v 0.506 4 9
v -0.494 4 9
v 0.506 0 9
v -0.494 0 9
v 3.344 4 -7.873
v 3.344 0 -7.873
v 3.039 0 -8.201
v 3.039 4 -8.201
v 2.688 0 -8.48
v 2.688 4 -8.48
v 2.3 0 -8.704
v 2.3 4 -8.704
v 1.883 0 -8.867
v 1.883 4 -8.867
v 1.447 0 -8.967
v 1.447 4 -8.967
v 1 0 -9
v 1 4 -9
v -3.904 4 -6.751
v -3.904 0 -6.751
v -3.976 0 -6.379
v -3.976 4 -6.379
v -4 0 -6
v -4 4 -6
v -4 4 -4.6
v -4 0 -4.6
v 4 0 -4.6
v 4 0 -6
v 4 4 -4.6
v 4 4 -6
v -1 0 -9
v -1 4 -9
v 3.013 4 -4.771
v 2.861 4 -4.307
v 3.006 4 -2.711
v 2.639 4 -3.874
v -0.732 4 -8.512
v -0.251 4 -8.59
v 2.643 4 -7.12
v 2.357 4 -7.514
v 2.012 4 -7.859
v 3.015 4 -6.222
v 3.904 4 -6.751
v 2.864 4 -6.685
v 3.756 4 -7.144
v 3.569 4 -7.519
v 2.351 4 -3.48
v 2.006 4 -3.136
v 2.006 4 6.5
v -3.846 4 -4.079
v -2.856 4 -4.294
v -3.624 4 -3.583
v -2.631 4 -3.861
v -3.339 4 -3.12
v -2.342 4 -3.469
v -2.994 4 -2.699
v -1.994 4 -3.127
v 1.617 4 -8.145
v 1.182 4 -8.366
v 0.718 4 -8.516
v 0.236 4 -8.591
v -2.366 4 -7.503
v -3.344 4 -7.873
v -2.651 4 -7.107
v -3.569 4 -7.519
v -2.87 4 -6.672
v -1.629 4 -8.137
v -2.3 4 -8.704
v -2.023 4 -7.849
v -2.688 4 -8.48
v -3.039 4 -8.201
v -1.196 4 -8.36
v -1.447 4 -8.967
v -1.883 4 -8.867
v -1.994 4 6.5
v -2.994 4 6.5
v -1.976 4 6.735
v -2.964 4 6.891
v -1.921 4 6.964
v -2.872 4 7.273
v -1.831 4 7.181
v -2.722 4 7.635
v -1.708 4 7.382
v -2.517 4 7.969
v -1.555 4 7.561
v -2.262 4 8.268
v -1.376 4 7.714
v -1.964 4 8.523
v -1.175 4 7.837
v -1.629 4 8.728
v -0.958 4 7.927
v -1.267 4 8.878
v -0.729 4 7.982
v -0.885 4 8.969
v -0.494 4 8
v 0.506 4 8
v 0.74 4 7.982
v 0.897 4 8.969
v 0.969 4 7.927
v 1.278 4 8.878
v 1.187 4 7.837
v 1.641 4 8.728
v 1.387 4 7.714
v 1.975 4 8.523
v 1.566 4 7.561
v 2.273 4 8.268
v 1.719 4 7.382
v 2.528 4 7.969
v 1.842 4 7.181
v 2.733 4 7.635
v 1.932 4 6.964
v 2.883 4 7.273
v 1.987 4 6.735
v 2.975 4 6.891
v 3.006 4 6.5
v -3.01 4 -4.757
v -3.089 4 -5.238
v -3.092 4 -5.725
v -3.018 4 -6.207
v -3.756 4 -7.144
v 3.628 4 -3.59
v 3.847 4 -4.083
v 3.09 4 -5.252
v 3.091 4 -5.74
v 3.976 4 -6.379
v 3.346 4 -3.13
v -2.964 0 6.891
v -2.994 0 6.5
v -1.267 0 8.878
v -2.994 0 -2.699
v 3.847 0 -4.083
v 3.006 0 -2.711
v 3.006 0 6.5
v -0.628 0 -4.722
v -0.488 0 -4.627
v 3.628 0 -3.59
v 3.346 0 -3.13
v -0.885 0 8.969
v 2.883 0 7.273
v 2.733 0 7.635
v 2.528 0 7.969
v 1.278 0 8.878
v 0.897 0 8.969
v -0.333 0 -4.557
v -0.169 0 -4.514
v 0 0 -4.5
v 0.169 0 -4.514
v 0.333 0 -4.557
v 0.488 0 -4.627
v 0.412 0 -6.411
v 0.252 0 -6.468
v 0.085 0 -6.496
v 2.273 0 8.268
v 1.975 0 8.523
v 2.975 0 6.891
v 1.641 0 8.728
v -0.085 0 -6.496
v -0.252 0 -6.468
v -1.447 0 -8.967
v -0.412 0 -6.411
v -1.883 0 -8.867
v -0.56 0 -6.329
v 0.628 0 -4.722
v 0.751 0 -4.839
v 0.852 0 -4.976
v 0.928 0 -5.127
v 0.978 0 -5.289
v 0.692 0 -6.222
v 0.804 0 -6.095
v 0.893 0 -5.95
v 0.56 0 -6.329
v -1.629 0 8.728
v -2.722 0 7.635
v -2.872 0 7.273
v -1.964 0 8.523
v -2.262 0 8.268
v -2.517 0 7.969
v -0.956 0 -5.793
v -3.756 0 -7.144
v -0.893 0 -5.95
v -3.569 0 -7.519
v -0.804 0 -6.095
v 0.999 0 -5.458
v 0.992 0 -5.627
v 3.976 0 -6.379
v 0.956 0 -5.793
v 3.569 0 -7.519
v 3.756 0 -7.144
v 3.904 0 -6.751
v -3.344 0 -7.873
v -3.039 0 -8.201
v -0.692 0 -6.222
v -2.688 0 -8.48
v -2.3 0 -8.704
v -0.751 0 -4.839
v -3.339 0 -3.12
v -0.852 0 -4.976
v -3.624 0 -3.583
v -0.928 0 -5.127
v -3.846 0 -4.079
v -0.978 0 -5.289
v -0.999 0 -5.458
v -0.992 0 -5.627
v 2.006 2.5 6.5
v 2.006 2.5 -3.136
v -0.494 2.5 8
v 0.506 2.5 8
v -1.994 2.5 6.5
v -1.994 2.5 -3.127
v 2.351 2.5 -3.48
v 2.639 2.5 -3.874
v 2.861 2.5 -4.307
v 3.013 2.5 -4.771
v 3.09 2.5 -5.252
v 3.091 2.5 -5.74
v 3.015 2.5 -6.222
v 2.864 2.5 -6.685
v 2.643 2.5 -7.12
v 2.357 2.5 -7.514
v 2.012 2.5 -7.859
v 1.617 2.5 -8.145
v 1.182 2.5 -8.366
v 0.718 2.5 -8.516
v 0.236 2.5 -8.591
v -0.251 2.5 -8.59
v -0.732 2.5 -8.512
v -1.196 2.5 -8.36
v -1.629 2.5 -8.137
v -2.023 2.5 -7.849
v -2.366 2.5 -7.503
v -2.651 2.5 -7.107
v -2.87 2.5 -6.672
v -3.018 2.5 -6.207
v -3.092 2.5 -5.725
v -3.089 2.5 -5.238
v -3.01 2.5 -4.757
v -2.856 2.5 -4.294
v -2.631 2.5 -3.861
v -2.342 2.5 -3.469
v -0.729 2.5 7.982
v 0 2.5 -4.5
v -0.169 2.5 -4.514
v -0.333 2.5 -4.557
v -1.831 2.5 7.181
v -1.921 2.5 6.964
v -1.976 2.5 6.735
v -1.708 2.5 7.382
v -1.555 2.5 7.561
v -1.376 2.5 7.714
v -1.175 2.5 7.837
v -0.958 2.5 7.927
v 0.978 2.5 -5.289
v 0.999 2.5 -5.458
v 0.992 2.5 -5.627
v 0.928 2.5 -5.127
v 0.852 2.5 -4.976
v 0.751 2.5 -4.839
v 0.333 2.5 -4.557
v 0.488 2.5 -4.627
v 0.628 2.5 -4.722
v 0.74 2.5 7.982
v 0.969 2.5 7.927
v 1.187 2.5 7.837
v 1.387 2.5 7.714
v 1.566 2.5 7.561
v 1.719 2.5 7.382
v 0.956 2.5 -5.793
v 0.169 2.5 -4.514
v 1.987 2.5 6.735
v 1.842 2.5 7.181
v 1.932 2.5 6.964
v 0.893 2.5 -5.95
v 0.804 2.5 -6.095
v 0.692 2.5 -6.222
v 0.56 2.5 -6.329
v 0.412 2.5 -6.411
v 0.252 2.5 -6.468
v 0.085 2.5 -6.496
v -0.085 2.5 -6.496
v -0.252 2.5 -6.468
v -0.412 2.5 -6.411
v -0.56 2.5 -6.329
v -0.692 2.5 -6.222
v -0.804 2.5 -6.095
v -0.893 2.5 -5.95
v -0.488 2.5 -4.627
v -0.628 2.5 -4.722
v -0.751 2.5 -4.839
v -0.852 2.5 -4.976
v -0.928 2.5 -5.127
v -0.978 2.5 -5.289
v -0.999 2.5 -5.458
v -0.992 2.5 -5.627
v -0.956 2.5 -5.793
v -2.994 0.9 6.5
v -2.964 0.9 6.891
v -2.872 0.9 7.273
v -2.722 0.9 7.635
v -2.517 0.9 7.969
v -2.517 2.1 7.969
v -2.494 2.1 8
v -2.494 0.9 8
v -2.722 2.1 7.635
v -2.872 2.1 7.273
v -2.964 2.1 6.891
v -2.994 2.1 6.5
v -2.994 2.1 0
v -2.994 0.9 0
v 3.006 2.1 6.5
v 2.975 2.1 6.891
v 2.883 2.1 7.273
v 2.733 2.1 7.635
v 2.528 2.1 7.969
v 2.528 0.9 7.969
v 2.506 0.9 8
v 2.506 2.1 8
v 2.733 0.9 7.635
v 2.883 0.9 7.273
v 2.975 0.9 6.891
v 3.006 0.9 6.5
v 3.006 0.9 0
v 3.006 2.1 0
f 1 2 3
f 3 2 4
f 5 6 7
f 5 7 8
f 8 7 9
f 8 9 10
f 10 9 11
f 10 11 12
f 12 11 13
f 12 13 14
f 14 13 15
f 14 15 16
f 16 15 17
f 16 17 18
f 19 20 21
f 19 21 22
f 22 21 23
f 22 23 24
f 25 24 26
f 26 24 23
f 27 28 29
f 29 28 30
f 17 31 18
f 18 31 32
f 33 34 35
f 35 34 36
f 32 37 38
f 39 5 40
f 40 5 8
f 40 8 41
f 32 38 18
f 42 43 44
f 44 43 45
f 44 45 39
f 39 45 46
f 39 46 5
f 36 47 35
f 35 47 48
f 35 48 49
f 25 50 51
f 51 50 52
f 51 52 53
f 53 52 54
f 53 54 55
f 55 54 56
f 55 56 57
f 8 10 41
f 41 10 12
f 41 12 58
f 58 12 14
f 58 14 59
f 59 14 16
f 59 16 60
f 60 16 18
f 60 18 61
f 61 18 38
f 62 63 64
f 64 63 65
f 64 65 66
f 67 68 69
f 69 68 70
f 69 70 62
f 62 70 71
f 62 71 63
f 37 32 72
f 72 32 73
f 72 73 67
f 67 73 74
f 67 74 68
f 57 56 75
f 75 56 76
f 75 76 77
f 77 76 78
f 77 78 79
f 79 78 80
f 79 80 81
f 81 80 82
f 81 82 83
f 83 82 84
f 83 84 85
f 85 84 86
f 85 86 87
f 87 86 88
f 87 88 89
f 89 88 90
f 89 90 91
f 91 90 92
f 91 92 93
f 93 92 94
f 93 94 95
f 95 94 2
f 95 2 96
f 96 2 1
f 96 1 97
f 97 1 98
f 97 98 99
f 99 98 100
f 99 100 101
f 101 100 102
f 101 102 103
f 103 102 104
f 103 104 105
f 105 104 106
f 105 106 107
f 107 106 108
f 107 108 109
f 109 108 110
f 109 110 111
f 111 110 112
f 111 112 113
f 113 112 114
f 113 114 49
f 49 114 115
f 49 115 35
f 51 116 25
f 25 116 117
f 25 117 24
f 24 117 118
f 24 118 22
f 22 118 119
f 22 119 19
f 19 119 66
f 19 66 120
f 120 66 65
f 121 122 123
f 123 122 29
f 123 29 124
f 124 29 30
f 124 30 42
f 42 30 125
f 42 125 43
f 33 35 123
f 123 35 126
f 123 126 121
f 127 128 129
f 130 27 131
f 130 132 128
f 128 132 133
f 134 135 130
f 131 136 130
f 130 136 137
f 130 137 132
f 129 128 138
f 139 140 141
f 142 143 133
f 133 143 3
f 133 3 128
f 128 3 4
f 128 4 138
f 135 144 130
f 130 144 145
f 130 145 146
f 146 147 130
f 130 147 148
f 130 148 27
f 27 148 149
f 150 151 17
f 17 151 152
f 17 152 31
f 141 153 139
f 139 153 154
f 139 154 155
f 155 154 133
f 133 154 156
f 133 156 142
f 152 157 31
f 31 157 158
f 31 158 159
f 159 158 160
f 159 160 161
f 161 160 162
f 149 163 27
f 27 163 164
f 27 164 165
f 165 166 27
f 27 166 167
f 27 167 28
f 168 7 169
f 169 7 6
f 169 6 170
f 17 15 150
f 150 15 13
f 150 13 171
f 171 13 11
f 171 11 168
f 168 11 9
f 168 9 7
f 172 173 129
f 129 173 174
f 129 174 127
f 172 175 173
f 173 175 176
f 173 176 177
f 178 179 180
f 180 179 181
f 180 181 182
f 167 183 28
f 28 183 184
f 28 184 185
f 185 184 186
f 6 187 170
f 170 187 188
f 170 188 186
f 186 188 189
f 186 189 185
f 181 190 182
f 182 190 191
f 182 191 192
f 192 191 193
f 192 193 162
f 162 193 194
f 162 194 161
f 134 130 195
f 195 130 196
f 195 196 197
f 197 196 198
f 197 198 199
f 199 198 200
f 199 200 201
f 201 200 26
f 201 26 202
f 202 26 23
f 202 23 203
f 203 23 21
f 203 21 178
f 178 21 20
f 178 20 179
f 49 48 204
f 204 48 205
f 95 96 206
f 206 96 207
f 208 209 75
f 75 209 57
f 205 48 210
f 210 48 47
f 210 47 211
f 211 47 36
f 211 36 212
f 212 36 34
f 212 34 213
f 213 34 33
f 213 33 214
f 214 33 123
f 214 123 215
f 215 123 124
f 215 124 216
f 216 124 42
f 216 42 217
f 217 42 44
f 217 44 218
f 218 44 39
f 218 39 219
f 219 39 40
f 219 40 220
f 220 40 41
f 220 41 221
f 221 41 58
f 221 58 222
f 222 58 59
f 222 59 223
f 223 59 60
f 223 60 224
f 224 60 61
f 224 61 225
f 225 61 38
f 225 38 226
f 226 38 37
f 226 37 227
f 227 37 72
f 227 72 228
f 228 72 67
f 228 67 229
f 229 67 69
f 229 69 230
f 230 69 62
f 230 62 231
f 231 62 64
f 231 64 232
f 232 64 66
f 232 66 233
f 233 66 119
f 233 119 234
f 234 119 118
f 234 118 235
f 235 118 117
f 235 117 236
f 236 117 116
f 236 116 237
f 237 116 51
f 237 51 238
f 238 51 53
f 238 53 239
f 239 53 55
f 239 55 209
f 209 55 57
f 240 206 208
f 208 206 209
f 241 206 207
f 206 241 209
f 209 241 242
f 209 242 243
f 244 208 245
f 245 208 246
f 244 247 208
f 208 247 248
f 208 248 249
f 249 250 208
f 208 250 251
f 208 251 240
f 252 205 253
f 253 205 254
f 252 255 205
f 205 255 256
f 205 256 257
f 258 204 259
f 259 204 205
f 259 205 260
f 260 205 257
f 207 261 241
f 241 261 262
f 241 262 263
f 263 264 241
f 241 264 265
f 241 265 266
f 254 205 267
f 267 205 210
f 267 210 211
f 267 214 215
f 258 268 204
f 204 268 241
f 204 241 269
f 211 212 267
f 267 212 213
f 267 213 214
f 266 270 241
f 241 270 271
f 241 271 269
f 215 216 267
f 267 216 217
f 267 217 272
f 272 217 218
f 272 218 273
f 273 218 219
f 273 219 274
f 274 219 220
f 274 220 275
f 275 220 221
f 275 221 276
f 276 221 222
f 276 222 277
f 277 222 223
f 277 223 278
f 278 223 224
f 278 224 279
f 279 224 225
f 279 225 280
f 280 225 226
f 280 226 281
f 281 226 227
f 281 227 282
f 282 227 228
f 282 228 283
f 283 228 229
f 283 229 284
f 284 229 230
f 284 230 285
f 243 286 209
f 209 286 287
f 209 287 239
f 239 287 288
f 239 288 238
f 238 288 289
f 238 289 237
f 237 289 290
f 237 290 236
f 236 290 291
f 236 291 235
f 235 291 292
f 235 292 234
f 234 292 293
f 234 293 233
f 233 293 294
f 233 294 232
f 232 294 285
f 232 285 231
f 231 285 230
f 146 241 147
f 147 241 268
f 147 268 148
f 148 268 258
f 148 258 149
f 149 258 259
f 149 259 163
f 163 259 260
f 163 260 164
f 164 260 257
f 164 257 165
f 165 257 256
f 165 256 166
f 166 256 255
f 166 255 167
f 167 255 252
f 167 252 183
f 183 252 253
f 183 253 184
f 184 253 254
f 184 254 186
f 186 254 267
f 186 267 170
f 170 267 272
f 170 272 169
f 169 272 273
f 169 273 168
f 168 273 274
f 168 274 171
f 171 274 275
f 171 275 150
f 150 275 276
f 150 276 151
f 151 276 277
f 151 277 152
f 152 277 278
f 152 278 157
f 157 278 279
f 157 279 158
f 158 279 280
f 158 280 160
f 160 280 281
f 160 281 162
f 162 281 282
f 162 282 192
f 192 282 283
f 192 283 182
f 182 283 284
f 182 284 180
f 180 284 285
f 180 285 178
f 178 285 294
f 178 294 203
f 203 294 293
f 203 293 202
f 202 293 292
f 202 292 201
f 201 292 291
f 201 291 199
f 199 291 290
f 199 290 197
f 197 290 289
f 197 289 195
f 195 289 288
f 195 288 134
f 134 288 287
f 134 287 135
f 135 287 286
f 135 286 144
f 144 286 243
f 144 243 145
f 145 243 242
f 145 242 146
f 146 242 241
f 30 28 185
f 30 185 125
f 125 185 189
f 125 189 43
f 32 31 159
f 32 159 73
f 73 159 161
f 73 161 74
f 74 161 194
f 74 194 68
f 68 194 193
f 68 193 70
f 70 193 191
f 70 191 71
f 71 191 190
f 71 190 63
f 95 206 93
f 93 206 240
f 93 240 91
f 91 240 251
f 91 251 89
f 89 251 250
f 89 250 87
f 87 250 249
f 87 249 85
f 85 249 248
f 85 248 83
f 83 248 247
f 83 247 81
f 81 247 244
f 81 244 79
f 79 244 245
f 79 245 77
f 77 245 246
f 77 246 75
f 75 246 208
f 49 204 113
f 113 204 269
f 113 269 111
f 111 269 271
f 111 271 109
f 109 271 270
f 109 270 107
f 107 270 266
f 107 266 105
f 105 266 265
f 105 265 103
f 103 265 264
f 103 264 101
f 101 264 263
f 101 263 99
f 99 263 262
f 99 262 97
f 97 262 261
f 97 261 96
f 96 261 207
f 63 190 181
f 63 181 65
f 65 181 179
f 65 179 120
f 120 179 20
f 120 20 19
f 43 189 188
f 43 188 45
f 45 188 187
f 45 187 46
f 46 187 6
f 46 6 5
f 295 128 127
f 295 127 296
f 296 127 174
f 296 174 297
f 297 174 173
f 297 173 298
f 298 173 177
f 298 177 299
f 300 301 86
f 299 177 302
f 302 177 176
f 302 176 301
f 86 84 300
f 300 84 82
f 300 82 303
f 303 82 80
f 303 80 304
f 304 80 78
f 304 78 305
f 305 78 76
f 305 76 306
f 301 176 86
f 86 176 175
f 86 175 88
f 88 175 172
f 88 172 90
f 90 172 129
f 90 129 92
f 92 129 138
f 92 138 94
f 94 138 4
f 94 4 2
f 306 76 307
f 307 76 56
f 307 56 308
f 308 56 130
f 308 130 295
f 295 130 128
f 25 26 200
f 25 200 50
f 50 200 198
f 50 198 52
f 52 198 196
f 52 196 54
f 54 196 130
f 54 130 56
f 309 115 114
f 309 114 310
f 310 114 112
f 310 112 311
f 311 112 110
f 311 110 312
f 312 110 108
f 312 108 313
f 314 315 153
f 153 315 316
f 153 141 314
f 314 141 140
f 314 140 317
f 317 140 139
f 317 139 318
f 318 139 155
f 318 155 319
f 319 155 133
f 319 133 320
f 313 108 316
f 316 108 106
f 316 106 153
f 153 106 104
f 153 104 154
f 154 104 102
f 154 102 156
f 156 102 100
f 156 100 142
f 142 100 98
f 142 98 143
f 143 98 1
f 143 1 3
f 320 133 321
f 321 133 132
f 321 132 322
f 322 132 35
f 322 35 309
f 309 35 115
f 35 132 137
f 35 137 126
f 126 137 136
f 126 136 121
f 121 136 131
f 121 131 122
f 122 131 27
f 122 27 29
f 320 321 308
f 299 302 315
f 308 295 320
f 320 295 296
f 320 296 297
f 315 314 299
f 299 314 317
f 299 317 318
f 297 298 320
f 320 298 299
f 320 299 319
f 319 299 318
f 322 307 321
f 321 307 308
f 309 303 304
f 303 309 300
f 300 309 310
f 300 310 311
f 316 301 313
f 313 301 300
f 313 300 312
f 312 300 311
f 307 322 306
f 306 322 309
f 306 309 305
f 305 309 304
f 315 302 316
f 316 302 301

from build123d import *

# Parameters (mm, degrees)
SKETCH_1_W          = 8
SKETCH_1_H          = 18
EXTRUDE_1_DEPTH     = 4
CUT_EXTRUDE_4_DEPTH = 1.5
SKETCH_6_W          = 8
SKETCH_6_H          = 1.2
CUT_EXTRUDE_5_DEPTH = 13.68857754
SKETCH_7_R          = 1
CUT_EXTRUDE_6_DEPTH = 11.161200716
FILLET_1_R          = 3
FILLET_2_R          = 2
FILLET_3_R          = 1.5
CUT_EXTRUDE_START   = -4
CUT_EXTRUDE_7_DEPTH = 4


# Read off the part's stored shape, not the designer's step: 切除-拉伸7
with BuildPart() as part:
    # 草图1 → 凸台-拉伸1 (new body)
    with BuildSketch(Plane(origin=(0, 0, 0), x_dir=(1, 0, 0), z_dir=(0, 1, 0))):
        Rectangle(SKETCH_1_W, SKETCH_1_H)
    extrude(amount=EXTRUDE_1_DEPTH)

    # 草图5 → 切除-拉伸4 (cut)
    with BuildSketch(Plane(origin=(0, 4, 0), x_dir=(1, 0, 0), z_dir=(0, 1, 0))):
        with BuildLine():
            Line((2.005613872, -8), (-1.994386128, -8))
            Line((-1.994386128, -8), (-1.994386128, 3.12672716))
            ThreePointArc((-1.994386128, 3.12672716), (-0.007347569, 8.599991292), (2.005613872, 3.136207921))
            Line((2.005613872, 3.136207921), (2.005613872, -8))
        make_face()
    extrude(amount=-CUT_EXTRUDE_4_DEPTH, mode=Mode.SUBTRACT)

    # 草图6 → 切除-拉伸5 (cut, through all)
    with BuildSketch(Plane(origin=(4, 0, 0), x_dir=(0, 0, -1), z_dir=(1, 0, 0))):
        with Locations((-4, 1.5)):
            Rectangle(SKETCH_6_W, SKETCH_6_H)
    extrude(amount=-CUT_EXTRUDE_5_DEPTH, mode=Mode.SUBTRACT)

    # 草图7 → 切除-拉伸6 (cut, through all)
    with BuildSketch(Plane(origin=(0, 2.5, 0), x_dir=(1, 0, 0), z_dir=(0, 1, 0))):
        with Locations(Location((0, 5.5, 0), (0, 0, 270))):
            Circle(SKETCH_7_R)
    extrude(amount=-CUT_EXTRUDE_6_DEPTH, mode=Mode.SUBTRACT)

    # 圆角1
    fillet_1_edges = [part.edges().sort_by_distance(p)[0] for p in [
        (-4, 2, -9),
        (4, 2, -9),
    ]]
    fillet(fillet_1_edges, radius=FILLET_1_R)

    # 圆角2
    # the kernel refuses this fillet: 2 mm, written as the material it takes off along each edge
    with BuildSketch(Plane(origin=(4, -5, 9), x_dir=(0, 0, -1), z_dir=(0, 1, 0)), Plane(origin=(-4, -5, 9), x_dir=(1, 0, 0), z_dir=(0, 1, 0))) as fillet_2_piece_1:
        with BuildLine():
            CenterArc((FILLET_2_R, FILLET_2_R), FILLET_2_R, 180, 90)
            Line((0, FILLET_2_R), (0, 0))
            Line((0, 0), (FILLET_2_R, 0))
        make_face()
    extrude(amount=14, mode=Mode.SUBTRACT)

    # 圆角3
    fillet_3_edges = [part.edges().sort_by_distance(p)[0] for p in [
        (2.005613872, 3.25, 8),
        (-1.994386128, 3.25, 8),
    ]]
    fillet(fillet_3_edges, radius=FILLET_3_R)

    # 切除-拉伸7 outline → 切除-拉伸7 (cut)
    with BuildSketch(Plane(origin=(0, 4, 0), x_dir=(1, 0, 0), z_dir=(0, 1, 0)).offset(CUT_EXTRUDE_START)):
        with BuildLine():
            ThreePointArc((-3.34354323, 7.872913541), (-3.683281573, 7.341640787), (-3.904456771, 6.751086459))
            ThreePointArc((-3.904456771, 6.751086459), (-3.667151483, 7.333575742), (-3.34354323, 7.872913541))
        make_face()
        with BuildLine():
            ThreePointArc((3.34354323, 7.872913541), (3.667151483, 7.333575742), (3.90445677, 6.751086459))
            ThreePointArc((3.90445677, 6.751086459), (3.683281573, 7.341640787), (3.34354323, 7.872913541))
        make_face()
        with BuildLine():
            ThreePointArc((-2.994386128, 2.699347983), (-3.62401419, 3.582574342), (-4, 4.6))
            Line((-4, 4.6), (-4, -7))
            ThreePointArc((-4, -7), (-3.414213562, -8.414213562), (-2, -9))
            Line((-2, -9), (-0.494386128, -9))
            ThreePointArc((-0.494386128, -9), (-2.262153081, -8.267766953), (-2.994386128, -6.5))
            Line((-2.994386128, -6.5), (-2.994386128, 2.699347983))
        make_face()
        with BuildLine():
            Line((4, -7), (4, 4.6))
            ThreePointArc((4, 4.6), (3.627858614, 3.589858153), (3.005613872, 2.711400845))
            Line((3.005613872, 2.711400845), (3.005613872, -6.5))
            ThreePointArc((3.005613872, -6.5), (2.273380825, -8.267766953), (0.505613872, -9))
            Line((0.505613872, -9), (2, -9))
            ThreePointArc((2, -9), (3.414213562, -8.414213562), (4, -7))
        make_face()
    extrude(amount=CUT_EXTRUDE_7_DEPTH, mode=Mode.SUBTRACT)


solid = part.part
